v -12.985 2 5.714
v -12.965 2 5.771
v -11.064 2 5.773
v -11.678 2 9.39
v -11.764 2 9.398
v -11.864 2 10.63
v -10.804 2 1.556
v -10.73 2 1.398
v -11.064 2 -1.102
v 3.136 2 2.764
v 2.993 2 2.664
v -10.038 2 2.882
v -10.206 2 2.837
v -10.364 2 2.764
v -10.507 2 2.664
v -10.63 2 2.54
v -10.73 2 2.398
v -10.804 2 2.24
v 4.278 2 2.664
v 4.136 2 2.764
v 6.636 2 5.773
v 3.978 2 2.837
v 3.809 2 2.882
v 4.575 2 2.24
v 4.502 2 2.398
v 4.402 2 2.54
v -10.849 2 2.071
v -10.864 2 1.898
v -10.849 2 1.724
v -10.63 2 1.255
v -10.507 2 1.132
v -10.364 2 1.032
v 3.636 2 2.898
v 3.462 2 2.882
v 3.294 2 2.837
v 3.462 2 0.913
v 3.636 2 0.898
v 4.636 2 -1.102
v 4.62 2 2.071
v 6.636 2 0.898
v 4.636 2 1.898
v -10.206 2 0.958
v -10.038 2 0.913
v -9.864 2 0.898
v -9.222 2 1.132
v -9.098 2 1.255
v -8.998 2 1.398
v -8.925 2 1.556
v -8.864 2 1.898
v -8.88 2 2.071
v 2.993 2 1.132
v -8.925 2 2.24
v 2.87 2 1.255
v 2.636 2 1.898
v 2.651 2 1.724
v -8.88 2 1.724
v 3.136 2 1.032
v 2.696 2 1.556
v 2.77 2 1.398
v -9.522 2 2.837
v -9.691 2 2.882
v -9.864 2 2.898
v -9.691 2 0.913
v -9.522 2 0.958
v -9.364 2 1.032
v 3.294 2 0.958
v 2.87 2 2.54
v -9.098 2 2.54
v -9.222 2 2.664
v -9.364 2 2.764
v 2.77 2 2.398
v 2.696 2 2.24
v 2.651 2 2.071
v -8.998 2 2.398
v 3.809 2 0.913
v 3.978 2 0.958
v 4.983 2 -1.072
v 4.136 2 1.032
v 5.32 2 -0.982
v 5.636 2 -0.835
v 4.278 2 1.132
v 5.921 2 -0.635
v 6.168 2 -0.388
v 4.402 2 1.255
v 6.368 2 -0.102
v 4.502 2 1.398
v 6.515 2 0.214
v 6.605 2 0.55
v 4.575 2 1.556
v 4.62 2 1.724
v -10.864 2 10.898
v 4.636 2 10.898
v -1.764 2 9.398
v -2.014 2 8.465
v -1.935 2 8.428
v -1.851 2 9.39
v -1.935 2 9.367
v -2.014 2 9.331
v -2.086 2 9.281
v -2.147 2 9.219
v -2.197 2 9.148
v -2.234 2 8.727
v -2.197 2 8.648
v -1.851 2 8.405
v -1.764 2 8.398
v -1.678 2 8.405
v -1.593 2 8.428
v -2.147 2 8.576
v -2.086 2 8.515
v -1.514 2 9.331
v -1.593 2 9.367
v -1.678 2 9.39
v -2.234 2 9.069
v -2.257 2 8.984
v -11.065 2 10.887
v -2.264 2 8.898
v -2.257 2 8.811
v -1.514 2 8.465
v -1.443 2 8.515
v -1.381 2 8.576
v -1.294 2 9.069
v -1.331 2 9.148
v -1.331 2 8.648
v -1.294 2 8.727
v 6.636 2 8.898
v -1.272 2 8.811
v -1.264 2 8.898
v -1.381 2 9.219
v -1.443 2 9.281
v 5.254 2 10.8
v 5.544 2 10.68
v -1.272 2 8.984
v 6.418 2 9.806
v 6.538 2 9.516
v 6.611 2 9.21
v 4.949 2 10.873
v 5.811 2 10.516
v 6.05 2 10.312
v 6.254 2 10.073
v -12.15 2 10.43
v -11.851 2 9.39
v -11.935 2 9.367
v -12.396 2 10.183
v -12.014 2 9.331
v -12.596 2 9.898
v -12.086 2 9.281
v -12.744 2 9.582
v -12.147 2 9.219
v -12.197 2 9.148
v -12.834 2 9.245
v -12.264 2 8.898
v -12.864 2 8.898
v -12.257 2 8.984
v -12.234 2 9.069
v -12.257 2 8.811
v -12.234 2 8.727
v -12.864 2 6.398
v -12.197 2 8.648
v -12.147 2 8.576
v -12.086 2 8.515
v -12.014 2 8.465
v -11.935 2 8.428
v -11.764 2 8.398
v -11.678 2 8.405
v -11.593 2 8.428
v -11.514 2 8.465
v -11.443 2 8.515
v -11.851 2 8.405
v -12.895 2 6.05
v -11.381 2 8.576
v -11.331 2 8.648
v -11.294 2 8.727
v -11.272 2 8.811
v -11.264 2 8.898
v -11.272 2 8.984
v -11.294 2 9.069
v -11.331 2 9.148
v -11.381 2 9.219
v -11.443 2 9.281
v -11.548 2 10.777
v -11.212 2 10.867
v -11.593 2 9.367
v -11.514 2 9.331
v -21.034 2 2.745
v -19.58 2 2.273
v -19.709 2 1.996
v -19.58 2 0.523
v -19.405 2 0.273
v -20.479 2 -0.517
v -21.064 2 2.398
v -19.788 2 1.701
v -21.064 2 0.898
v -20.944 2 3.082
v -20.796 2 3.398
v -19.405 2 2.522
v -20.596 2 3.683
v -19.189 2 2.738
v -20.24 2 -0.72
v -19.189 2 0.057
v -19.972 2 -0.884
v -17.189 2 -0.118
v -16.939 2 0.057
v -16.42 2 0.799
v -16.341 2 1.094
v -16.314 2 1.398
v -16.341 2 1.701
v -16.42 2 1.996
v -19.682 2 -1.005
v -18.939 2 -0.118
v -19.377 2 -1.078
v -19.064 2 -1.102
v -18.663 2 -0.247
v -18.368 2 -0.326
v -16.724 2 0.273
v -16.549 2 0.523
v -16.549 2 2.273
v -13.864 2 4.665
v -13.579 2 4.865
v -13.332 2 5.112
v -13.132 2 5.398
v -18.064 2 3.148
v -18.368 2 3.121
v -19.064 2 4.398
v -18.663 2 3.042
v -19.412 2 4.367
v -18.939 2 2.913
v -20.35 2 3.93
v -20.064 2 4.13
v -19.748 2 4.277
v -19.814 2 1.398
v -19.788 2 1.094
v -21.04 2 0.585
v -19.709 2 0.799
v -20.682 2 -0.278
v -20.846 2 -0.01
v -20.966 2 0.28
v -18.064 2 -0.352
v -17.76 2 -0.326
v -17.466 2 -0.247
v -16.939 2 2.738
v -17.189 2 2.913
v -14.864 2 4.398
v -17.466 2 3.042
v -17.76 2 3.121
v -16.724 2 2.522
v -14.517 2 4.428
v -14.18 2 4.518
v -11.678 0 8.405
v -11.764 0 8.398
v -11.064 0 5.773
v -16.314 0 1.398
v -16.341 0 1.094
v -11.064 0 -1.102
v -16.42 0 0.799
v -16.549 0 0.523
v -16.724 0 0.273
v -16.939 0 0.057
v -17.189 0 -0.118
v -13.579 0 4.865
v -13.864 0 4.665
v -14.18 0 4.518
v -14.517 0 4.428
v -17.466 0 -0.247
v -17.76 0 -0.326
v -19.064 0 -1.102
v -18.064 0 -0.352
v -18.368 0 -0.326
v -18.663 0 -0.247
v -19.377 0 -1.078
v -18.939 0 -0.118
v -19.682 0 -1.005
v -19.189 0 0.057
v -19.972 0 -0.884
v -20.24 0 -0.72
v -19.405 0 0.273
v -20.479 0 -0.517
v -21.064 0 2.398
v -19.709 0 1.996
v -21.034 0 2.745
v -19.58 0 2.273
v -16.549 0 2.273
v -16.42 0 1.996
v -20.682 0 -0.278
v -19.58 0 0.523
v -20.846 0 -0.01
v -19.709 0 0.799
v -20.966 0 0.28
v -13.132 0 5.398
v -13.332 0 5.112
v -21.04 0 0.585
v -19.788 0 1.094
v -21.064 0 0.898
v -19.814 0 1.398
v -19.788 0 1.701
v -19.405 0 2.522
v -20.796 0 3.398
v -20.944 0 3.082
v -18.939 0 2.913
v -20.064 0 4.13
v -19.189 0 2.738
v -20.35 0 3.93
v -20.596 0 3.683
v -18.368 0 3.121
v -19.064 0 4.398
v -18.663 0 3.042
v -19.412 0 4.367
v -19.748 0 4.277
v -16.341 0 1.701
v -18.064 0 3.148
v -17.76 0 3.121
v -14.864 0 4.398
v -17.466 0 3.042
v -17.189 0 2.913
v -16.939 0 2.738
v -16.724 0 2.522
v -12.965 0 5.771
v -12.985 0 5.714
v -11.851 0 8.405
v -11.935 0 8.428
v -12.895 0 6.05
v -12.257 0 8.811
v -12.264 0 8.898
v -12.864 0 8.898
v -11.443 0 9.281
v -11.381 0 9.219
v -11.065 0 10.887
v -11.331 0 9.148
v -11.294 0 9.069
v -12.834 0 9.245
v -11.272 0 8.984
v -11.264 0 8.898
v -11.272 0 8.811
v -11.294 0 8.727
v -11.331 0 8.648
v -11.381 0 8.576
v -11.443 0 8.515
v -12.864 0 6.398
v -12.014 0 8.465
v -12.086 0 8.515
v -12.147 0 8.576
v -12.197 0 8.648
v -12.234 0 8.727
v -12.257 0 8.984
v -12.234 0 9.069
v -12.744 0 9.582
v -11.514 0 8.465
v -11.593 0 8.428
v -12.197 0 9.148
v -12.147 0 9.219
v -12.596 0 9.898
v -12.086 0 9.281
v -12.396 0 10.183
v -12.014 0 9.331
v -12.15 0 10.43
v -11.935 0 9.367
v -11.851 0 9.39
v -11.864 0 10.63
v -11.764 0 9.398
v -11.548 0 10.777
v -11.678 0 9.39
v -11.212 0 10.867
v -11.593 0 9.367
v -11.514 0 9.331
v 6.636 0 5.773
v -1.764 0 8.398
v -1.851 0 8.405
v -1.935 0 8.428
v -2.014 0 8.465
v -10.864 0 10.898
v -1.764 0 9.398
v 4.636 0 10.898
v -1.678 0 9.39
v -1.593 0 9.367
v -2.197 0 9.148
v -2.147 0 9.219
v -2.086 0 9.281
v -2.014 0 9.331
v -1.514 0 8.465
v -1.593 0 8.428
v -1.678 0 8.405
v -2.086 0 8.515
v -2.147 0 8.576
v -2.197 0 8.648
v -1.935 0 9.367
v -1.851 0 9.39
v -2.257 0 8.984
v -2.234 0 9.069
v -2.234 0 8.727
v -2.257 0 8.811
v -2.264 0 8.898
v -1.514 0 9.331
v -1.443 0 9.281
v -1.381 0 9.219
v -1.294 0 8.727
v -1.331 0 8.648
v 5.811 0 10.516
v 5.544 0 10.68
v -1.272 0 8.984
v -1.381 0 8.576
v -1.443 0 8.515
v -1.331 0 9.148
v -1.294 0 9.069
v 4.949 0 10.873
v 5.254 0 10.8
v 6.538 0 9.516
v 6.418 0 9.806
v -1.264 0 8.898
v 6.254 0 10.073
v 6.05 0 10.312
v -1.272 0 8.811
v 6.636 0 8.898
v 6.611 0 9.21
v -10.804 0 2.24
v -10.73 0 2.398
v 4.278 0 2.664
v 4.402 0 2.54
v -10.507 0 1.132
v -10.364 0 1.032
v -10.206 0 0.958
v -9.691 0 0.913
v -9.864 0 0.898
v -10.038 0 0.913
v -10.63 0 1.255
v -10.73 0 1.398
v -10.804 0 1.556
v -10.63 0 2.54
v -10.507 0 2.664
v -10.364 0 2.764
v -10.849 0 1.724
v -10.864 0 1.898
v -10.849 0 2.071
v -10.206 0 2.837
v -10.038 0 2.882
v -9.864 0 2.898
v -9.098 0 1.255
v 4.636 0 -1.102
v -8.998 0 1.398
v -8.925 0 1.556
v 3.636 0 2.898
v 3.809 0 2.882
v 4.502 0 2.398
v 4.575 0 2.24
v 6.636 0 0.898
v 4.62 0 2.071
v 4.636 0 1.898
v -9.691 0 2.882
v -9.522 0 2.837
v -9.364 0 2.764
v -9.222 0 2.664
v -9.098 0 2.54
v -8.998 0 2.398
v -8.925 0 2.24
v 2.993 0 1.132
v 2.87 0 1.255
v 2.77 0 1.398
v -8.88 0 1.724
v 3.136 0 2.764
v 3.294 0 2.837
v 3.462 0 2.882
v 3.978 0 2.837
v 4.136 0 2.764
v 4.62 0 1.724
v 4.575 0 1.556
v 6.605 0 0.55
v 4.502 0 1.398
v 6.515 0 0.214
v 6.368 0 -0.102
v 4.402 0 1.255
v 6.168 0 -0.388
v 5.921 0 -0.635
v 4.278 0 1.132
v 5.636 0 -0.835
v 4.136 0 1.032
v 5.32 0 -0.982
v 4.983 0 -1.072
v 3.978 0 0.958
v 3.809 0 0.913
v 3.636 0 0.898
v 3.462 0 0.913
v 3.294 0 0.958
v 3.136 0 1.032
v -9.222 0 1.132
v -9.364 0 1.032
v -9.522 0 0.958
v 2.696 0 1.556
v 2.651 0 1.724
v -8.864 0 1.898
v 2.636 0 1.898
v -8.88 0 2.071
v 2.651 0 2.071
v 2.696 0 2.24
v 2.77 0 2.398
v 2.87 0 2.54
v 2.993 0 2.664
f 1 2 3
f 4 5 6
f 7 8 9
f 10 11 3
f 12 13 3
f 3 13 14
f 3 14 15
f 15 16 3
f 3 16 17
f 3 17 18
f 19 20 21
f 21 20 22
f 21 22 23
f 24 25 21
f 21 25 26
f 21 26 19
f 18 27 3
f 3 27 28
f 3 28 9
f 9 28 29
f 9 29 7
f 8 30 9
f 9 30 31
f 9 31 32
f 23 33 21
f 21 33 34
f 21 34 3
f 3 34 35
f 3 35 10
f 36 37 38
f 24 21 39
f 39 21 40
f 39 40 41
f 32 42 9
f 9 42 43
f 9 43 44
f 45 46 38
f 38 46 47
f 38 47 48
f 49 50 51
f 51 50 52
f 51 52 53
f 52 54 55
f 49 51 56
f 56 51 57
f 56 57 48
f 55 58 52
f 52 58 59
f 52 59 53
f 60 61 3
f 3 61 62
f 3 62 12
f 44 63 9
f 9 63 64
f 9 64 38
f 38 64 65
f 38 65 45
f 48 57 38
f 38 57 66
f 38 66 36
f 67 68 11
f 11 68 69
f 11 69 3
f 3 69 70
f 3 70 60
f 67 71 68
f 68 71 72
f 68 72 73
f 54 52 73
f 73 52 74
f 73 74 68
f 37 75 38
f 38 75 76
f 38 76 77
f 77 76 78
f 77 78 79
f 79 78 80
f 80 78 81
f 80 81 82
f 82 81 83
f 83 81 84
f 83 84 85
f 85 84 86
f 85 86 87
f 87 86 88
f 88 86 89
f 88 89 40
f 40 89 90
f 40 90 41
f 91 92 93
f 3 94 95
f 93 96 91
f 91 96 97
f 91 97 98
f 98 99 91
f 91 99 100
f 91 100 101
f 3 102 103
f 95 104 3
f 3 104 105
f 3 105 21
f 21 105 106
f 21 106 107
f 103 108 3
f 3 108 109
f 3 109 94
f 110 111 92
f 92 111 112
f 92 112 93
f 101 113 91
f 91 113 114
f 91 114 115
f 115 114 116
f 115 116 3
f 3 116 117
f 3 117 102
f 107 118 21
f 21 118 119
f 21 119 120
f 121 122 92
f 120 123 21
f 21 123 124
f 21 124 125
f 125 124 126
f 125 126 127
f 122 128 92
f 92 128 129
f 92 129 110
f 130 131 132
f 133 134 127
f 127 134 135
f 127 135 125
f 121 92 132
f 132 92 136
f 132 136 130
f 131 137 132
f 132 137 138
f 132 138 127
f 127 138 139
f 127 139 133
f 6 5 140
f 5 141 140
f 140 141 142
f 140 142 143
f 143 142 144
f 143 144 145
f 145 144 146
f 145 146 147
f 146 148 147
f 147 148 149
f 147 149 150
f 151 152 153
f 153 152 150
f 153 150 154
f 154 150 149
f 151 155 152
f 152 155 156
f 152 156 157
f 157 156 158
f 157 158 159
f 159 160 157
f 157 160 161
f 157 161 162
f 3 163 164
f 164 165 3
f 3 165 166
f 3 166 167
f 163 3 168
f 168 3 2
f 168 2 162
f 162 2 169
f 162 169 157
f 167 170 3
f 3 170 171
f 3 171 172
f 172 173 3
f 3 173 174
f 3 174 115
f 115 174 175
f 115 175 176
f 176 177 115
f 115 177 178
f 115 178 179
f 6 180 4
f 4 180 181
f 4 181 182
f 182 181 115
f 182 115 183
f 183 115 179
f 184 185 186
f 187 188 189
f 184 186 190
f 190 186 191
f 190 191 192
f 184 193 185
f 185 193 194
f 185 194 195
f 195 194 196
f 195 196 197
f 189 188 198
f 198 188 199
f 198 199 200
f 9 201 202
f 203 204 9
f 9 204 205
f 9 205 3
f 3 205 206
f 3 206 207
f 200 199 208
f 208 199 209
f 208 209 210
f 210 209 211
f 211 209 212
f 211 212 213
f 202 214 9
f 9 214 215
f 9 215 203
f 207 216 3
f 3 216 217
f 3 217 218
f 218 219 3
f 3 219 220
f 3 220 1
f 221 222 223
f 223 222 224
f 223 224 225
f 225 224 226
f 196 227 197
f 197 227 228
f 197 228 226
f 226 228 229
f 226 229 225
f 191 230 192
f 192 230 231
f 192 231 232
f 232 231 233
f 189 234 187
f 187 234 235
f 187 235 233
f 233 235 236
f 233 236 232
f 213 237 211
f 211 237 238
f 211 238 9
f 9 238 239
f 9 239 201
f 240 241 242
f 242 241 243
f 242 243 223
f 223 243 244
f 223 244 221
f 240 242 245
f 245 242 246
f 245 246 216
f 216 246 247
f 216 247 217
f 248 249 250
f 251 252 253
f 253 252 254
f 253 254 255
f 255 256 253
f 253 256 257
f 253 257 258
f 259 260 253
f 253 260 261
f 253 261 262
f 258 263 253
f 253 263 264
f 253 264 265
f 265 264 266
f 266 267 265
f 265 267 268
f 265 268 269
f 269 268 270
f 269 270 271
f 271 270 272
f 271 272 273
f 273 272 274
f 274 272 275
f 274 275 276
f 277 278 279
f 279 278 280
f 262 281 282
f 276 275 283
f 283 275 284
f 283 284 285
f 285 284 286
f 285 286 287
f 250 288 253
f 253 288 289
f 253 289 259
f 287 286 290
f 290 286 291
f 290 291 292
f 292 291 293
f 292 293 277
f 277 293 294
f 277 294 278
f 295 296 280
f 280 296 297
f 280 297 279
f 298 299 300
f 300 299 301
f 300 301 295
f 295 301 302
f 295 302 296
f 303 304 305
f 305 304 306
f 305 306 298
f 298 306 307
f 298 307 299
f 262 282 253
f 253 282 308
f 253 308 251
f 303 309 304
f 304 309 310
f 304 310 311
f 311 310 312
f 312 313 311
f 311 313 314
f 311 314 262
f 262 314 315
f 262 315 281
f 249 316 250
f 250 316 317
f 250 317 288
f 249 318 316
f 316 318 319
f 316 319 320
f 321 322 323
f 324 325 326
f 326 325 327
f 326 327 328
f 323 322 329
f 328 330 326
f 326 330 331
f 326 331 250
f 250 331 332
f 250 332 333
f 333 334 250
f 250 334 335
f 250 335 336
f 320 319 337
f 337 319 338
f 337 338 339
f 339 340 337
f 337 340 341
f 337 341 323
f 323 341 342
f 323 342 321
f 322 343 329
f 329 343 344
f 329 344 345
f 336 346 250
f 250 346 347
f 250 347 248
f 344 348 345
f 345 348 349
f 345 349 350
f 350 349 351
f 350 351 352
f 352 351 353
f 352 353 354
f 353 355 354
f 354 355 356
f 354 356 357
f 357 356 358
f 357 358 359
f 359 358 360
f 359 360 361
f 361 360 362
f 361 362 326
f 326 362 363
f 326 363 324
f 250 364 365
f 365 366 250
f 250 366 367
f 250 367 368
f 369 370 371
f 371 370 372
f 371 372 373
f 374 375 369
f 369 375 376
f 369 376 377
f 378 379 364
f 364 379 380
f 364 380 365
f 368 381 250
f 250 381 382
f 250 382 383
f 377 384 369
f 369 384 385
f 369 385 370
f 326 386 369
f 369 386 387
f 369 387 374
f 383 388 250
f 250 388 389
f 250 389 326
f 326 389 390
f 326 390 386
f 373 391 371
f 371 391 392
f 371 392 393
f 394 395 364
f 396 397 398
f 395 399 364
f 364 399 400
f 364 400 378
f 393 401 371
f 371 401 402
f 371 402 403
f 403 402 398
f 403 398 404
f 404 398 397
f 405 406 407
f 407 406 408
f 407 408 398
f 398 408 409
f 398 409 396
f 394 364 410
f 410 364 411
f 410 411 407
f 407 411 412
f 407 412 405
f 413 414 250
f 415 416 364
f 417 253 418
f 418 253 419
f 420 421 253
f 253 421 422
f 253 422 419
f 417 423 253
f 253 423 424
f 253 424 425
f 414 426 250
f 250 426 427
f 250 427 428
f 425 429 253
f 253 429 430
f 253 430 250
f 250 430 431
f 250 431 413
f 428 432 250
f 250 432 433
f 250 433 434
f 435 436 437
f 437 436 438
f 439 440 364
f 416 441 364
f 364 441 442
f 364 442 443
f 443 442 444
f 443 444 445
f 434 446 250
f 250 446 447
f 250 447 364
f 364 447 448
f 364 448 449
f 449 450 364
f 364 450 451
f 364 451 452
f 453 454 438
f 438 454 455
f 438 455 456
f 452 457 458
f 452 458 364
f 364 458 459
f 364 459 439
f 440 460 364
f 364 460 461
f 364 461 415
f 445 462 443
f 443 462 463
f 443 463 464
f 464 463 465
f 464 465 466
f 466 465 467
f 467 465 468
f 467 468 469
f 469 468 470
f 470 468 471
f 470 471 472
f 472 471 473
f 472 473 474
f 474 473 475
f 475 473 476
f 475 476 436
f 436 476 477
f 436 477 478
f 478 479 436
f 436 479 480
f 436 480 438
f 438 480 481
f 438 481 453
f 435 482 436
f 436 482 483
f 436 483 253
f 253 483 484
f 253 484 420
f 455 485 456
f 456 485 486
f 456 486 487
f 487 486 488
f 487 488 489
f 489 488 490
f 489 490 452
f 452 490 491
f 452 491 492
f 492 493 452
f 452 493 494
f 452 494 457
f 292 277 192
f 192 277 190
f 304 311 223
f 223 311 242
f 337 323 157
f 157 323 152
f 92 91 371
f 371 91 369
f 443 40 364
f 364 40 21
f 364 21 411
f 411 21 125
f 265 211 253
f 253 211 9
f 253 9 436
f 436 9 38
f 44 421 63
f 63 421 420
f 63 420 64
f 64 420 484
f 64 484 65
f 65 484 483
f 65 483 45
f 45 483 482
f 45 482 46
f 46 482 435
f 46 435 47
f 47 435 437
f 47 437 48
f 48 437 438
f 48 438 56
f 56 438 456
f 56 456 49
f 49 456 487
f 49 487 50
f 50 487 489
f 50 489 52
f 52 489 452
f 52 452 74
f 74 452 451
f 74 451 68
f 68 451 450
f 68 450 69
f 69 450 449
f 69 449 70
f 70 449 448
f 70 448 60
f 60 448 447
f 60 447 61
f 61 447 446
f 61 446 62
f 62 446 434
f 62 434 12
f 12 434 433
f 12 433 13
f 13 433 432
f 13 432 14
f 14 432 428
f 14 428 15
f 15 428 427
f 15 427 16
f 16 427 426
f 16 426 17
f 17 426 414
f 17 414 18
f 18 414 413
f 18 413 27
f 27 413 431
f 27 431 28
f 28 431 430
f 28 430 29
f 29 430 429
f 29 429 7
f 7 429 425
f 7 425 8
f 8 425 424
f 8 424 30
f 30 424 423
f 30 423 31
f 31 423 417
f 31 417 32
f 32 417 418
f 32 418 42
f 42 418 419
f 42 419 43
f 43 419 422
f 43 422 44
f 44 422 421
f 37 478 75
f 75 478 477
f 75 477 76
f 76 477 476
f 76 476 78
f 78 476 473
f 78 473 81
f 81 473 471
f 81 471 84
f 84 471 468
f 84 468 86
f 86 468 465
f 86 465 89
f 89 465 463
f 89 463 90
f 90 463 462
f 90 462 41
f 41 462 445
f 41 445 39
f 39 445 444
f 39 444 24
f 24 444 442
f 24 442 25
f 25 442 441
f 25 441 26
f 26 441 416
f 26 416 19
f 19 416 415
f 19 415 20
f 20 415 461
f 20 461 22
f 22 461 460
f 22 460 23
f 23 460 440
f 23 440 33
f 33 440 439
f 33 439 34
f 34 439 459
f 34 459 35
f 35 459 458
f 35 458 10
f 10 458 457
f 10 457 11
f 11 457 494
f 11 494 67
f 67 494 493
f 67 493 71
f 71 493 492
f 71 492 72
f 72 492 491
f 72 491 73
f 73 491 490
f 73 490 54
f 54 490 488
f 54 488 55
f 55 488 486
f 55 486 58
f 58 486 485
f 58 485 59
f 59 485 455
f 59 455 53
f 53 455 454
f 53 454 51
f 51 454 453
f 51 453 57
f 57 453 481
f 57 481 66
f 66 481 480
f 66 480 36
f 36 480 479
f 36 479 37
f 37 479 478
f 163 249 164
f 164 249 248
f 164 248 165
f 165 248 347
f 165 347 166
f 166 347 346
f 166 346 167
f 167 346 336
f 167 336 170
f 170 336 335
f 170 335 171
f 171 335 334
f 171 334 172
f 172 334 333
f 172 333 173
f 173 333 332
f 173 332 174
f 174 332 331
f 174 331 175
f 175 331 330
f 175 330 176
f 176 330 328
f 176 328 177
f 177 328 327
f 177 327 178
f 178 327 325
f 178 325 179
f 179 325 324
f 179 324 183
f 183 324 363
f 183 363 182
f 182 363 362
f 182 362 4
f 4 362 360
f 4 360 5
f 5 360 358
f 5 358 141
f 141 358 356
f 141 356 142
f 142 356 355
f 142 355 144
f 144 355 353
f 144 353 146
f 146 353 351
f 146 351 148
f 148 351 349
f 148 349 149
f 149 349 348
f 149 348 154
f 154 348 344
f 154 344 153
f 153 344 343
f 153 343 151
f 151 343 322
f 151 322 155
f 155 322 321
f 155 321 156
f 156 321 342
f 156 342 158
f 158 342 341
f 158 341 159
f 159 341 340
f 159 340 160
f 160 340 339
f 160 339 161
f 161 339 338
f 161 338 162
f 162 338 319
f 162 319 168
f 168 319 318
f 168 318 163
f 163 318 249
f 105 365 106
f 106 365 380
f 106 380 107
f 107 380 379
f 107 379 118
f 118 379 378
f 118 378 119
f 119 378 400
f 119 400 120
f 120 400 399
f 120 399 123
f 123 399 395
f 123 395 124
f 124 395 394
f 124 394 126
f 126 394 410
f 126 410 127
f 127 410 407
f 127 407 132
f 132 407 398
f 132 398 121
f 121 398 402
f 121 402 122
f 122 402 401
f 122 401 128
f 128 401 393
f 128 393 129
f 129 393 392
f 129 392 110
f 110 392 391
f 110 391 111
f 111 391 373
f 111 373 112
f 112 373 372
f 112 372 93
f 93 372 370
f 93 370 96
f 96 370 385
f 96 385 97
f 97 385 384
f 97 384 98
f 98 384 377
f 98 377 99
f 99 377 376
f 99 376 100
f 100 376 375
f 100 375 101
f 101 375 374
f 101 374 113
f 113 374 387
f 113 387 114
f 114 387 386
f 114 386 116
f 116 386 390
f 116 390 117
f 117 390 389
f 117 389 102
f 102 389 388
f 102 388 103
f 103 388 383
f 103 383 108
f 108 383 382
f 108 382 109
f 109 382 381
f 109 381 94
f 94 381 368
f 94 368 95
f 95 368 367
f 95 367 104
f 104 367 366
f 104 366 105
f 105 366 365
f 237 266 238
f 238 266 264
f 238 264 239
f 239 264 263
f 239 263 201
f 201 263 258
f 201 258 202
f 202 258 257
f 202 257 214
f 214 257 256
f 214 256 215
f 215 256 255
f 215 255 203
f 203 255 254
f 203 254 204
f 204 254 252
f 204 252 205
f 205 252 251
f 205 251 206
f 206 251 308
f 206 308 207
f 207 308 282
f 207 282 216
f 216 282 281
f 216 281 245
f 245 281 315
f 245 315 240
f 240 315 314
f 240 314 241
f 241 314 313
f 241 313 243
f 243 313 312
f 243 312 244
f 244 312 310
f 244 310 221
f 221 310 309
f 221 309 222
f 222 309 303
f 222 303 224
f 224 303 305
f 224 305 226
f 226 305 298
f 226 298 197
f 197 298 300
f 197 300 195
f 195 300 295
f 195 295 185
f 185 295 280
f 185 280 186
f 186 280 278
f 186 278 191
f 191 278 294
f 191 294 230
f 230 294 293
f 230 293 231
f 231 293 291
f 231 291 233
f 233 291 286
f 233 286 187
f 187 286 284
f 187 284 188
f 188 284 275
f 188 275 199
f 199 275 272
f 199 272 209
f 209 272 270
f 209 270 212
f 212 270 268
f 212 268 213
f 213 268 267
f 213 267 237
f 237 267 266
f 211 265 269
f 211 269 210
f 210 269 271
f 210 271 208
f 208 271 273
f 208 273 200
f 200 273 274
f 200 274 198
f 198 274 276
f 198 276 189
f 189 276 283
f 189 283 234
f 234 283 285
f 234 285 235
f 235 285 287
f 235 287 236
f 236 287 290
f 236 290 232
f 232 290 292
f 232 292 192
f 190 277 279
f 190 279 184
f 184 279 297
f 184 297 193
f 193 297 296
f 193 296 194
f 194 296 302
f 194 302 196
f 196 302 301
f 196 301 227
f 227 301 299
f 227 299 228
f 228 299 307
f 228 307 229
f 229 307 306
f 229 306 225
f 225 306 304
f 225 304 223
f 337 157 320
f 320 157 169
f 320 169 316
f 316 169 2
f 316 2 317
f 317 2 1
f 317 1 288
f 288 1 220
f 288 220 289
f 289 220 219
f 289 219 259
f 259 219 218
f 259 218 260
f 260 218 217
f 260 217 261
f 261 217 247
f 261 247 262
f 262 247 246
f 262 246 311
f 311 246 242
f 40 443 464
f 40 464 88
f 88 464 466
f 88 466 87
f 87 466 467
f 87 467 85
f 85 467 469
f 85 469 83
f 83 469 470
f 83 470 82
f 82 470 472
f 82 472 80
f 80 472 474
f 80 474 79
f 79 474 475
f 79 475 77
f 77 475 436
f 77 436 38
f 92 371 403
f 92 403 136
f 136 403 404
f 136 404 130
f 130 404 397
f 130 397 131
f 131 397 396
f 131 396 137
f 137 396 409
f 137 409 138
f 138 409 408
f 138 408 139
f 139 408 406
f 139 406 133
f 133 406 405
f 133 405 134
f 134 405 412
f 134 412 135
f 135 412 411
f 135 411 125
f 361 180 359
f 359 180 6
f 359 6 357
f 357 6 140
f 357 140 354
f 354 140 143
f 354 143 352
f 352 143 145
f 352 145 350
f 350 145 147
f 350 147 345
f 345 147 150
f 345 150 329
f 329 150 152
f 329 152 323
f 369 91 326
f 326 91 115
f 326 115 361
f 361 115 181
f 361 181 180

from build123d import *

# Parameters (mm, degrees)
SKETCH1_R           = 1
SKETCH1_R_2         = 0.5
SKETCH1_R_3         = 1.75
BOSS_EXTRUDE1_DEPTH = 2
FILLET1_R           = 2


with BuildPart() as part:
    # Sketch1 → Boss-Extrude1 (new body)
    with BuildSketch(Plane(origin=(0, 0, 0), x_dir=(1, 0, 0), z_dir=(0, 1, 0))):
        Polygon((-12.864326531, 1.102455199), (6.635673469, 1.102455199), (6.635673469, -10.897544801), (-12.864326531, -10.897544801), (-12.864326531, -4.397544801), (-21.064326531, -4.397544801), (-21.064326531, 1.102455199), align=None)
        with Locations(Location((-9.864326531, -1.897544801, 0), (0, 0, 270))):
            Circle(SKETCH1_R, mode=Mode.SUBTRACT)
        with Locations(Location((3.635673469, -1.897544801, 0), (0, 0, 270))):
            Circle(SKETCH1_R, mode=Mode.SUBTRACT)
        with Locations(Location((-11.764326531, -8.897544801, 0), (0, 0, 270))):
            Circle(SKETCH1_R_2, mode=Mode.SUBTRACT)
        with Locations(Location((-1.764326531, -8.897544801, 0), (0, 0, 270))):
            Circle(SKETCH1_R_2, mode=Mode.SUBTRACT)
        with Locations(Location((-18.064326531, -1.397544801, 0), (0, 0, 270))):
            Circle(SKETCH1_R_3, mode=Mode.SUBTRACT)
    extrude(amount=BOSS_EXTRUDE1_DEPTH)

    # Fillet1
    fillet1_edges = [part.edges().sort_by_distance(p)[0] for p in [
        (6.635673469, 1, -1.102455199),
        (6.635673469, 1, 10.897544801),
        (-12.864326531, 1, 10.897544801),
        (-12.864326531, 1, 4.397544801),
        (-21.064326531, 1, 4.397544801),
        (-21.064326531, 1, -1.102455199),
    ]]
    fillet(fillet1_edges, radius=FILLET1_R)


solid = part.part
